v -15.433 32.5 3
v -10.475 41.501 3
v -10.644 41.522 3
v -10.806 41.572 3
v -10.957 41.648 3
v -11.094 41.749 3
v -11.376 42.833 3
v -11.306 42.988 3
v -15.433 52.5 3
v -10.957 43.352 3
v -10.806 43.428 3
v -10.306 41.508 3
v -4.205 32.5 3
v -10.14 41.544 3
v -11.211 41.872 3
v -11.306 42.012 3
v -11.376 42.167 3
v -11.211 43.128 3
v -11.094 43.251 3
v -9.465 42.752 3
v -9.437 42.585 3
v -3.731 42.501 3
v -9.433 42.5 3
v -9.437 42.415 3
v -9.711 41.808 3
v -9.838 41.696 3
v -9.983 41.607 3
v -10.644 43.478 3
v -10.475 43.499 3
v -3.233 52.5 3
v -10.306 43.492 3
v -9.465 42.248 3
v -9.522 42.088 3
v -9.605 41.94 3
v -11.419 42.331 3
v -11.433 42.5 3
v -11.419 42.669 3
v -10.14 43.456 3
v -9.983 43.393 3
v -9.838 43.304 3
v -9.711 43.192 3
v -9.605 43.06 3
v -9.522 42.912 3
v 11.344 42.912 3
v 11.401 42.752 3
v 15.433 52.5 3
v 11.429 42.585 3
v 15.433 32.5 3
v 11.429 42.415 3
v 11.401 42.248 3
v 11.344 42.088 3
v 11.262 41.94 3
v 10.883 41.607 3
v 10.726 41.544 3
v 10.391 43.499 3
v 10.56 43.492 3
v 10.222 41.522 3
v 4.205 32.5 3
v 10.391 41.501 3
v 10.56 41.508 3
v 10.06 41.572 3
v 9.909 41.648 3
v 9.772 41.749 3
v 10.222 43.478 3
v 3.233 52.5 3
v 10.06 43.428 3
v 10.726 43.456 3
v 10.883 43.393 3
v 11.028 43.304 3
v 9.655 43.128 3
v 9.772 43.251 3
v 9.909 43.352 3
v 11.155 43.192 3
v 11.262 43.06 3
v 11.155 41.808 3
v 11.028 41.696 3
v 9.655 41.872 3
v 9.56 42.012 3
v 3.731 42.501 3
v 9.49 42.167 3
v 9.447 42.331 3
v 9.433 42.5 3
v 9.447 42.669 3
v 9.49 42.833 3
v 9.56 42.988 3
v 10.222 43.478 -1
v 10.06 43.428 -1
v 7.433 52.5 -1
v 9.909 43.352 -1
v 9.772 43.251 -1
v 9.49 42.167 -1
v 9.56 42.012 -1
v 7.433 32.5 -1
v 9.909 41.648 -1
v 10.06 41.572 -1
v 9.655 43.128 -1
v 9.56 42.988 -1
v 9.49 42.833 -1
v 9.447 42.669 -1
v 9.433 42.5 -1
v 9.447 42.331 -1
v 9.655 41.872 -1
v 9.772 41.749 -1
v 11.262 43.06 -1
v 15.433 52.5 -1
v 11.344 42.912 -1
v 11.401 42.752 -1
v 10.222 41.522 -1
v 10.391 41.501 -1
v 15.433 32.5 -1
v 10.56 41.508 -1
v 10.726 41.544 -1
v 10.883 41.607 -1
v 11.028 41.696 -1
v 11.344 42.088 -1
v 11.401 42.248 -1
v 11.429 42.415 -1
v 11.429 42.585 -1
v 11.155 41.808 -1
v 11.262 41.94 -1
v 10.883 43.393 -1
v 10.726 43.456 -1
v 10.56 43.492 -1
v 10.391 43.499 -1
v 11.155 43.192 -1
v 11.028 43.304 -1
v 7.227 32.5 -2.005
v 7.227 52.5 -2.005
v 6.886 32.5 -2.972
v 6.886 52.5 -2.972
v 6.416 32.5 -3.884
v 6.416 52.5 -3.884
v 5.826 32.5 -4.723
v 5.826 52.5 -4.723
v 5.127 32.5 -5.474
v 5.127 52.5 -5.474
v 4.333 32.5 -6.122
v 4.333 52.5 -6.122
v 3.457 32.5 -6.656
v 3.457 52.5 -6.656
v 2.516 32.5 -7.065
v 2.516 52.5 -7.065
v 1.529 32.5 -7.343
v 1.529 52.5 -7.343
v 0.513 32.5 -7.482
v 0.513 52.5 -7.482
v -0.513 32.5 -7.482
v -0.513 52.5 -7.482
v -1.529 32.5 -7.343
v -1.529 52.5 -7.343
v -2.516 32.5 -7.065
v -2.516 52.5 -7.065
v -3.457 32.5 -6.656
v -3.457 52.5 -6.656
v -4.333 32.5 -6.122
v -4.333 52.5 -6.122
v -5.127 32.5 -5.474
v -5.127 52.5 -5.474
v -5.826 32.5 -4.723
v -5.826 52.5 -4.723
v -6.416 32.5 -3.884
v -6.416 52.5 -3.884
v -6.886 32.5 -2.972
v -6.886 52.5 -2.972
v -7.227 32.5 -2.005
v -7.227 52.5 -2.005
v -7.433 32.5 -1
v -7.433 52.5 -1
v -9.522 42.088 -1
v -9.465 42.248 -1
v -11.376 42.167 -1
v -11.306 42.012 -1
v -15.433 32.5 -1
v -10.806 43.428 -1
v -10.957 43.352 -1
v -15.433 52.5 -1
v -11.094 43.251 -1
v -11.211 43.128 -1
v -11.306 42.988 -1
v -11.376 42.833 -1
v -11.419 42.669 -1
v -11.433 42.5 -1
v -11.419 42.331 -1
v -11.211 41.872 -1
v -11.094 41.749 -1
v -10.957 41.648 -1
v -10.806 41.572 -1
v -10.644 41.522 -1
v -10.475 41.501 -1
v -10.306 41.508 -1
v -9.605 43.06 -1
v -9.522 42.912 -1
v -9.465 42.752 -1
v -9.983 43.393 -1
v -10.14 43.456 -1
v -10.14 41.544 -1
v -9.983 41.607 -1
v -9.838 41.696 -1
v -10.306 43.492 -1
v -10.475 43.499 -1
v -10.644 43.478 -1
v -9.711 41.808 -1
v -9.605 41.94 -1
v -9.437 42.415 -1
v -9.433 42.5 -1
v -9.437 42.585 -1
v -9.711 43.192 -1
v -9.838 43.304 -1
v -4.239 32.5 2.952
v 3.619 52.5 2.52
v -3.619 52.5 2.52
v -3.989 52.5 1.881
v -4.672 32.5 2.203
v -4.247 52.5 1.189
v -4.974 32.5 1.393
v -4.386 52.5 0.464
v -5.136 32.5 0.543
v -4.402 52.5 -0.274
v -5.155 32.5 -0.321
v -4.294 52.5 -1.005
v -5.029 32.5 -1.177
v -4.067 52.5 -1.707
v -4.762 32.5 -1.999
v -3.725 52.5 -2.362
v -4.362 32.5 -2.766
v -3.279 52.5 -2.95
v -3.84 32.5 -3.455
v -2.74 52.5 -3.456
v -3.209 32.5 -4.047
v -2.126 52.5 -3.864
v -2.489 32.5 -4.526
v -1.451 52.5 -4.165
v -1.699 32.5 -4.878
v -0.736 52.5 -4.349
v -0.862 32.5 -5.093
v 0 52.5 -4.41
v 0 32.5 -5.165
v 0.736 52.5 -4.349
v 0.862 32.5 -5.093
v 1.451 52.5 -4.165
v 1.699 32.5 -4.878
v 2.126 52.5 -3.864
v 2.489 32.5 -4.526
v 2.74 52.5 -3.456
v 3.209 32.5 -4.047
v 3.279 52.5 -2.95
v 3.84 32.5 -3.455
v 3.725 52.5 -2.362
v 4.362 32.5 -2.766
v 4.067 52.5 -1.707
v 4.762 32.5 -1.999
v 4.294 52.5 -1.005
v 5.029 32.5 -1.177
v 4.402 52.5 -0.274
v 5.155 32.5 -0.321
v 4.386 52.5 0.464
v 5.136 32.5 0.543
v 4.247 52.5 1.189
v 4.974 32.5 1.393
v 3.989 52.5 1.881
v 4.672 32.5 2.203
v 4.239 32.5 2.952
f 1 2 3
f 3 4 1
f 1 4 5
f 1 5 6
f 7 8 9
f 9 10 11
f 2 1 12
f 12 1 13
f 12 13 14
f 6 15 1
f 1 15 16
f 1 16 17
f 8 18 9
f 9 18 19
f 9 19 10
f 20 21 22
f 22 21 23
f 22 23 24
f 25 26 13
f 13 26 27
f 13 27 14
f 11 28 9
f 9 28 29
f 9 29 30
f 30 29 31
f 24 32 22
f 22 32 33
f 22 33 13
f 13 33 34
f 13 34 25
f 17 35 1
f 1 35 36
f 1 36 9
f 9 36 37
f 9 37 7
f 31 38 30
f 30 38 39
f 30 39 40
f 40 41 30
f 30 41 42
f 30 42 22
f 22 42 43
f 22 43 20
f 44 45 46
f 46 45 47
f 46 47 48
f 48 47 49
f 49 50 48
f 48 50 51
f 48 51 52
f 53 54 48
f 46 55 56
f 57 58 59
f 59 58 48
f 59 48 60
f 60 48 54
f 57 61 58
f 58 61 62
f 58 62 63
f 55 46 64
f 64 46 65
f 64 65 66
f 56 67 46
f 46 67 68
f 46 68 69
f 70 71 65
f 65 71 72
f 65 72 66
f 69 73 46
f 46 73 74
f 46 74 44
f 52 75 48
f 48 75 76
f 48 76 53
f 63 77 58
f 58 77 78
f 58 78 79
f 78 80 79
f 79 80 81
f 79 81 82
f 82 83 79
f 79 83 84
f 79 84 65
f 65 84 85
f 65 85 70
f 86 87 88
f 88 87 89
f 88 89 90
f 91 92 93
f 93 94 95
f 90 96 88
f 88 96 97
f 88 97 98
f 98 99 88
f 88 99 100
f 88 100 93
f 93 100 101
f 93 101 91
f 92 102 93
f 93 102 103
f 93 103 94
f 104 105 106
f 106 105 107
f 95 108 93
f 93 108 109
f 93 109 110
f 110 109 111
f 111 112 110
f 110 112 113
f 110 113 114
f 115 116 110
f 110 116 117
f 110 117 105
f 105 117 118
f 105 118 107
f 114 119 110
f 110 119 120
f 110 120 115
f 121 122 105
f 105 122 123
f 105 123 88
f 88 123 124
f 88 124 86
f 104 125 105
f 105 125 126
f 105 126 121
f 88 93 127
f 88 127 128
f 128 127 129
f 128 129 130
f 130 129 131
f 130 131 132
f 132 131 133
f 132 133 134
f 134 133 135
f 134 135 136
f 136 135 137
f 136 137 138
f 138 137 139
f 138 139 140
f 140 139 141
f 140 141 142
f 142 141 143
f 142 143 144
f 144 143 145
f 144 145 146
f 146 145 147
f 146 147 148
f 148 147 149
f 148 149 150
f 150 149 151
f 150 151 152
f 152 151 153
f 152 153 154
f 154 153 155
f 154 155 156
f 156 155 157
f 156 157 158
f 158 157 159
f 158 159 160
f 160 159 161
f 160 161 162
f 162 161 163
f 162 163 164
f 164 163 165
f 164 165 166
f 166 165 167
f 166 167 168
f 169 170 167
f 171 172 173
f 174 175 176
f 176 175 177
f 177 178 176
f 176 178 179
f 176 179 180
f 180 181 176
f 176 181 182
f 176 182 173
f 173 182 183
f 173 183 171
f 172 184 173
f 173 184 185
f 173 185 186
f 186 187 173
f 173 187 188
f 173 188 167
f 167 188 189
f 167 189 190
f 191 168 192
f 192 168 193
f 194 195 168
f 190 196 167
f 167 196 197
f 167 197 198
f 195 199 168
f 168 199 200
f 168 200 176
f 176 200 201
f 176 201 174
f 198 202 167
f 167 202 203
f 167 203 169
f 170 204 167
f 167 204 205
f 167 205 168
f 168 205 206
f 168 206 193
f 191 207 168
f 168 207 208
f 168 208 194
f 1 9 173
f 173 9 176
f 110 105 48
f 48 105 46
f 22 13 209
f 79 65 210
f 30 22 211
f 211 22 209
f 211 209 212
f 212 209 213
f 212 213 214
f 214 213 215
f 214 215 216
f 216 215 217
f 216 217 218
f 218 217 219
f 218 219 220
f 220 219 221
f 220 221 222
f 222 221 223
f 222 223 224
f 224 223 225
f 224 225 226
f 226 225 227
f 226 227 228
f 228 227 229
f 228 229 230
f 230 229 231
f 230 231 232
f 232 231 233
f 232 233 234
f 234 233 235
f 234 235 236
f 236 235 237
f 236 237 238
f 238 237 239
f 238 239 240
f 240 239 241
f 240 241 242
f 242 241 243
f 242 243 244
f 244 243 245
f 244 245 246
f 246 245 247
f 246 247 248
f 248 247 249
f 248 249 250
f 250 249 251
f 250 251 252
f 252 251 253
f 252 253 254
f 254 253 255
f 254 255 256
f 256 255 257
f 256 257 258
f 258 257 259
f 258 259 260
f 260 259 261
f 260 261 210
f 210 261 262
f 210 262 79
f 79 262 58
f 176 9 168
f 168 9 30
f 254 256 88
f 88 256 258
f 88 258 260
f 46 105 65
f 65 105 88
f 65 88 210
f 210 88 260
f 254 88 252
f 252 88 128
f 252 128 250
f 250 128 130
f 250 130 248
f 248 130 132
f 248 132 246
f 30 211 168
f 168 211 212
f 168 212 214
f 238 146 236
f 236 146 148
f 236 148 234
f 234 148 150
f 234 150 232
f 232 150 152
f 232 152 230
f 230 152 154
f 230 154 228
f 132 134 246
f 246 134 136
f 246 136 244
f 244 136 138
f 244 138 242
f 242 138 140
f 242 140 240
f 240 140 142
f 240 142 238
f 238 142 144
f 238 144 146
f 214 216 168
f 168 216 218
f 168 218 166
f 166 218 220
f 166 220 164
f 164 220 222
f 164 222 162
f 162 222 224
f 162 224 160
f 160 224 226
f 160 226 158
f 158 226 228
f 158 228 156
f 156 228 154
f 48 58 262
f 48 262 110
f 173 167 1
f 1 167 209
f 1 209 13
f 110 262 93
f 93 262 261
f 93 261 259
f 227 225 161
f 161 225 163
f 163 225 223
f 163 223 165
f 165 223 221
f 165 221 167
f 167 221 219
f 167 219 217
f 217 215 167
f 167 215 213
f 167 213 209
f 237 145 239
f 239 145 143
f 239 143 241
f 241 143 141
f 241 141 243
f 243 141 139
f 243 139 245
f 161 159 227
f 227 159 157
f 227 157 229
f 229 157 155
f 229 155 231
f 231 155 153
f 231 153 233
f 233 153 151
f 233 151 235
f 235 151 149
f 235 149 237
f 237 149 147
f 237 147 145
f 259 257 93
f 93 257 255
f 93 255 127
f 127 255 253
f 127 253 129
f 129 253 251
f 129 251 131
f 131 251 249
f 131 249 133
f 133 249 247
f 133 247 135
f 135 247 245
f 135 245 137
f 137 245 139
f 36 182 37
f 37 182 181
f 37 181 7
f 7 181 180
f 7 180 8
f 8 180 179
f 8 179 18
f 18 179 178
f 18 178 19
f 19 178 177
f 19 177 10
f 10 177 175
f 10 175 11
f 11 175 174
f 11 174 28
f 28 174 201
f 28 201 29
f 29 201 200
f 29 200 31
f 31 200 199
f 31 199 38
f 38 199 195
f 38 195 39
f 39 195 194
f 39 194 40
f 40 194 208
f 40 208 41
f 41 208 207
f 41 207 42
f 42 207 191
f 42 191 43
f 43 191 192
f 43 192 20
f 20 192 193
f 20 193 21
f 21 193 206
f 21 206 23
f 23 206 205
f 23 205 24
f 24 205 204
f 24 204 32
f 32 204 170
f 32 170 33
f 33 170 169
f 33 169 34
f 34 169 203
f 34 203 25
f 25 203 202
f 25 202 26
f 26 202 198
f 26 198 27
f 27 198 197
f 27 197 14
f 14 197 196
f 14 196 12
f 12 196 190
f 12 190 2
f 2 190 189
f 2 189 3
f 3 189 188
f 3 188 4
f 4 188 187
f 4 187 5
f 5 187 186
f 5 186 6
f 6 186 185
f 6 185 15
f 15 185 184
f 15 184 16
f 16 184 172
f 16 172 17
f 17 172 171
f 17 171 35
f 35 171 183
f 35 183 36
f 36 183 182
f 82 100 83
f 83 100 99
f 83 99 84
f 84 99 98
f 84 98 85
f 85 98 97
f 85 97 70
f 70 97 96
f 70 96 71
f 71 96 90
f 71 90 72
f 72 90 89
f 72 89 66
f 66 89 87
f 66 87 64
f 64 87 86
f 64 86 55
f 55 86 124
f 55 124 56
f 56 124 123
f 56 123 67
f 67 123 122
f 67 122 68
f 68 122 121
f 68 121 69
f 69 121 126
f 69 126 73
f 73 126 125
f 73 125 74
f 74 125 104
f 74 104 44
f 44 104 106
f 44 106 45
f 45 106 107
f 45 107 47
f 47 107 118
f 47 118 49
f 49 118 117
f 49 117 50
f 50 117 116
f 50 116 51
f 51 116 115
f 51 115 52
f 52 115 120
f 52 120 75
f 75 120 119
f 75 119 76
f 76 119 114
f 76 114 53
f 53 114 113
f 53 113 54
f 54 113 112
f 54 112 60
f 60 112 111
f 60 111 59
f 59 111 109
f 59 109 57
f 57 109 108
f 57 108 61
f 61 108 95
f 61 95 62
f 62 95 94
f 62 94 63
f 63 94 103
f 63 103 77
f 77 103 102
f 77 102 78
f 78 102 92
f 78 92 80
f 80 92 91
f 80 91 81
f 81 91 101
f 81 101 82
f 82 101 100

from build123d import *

# Parameters (mm, degrees)
RESSALTO_EXTRUS_O3_DEPTH = 60
ESBO_O5_R                = 6
CORTE_EXTRUS_O1_DEPTH    = 17
ESBO_O7_W                = 30.866068748
ESBO_O7_H                = 32.5
ESBO_O7_H_2              = 7.5
CORTE_EXTRUS_O2_DEPTH    = 15
ESBO_O8_R                = 1
CORTE_EXTRUS_O3_DEPTH    = 5


with BuildPart() as part:
    # Esboço4 → Ressalto-extrusão3 (new body)
    with BuildSketch(Plane(origin=(0, 0, 0), x_dir=(1, 0, 0), z_dir=(0, 1, 0))):
        with BuildLine():
            Line((15.433034374, -3), (-15.433034374, -3))
            Line((-15.433034374, -3), (-15.433034374, 1))
            Line((-15.433034374, 1), (-7.433034374, 1))
            ThreePointArc((-7.433034374, 1), (0, 7.5), (7.433034374, 1))
            Line((7.433034374, 1), (15.433034374, 1))
            Line((15.433034374, 1), (15.433034374, -3))
        make_face()
    extrude(amount=RESSALTO_EXTRUS_O3_DEPTH)

    # Esboço5 → Corte-extrusão1 (cut)
    with BuildSketch(Plane(origin=(0, 0, 0), x_dir=(1, 0, 0), z_dir=(0, 1, 0))):
        Circle(ESBO_O5_R)
    extrude(amount=CORTE_EXTRUS_O1_DEPTH, mode=Mode.SUBTRACT)

    # Esboço6 → Corte-Revolução1 (revolve, cut)
    with BuildSketch(Plane.XY):
        Polygon((0, 17), (-5.75, 17), (-3.75, 70), (0, 70), align=None)
    revolve(axis=Axis((0, 70, 0), (0, -1, 0)), mode=Mode.SUBTRACT)

    # Esboço7 → Corte-extrusão2 (cut)
    with BuildSketch(Plane.XY.offset(3)):
        with Locations((0, 16.25)):
            Rectangle(ESBO_O7_W, ESBO_O7_H)
        with Locations((0, 56.25)):
            Rectangle(ESBO_O7_W, ESBO_O7_H_2)
    extrude(amount=-CORTE_EXTRUS_O2_DEPTH, mode=Mode.SUBTRACT)

    # Esboço8 → Corte-extrusão3 (cut, through all)
    with BuildSketch(Plane(origin=(0, 0, -1), x_dir=(-1, 0, 0), z_dir=(0, 0, -1))):
        with Locations((-10.433034374, 42.5)):
            Circle(ESBO_O8_R)
        with Locations((10.433034374, 42.5)):
            Circle(ESBO_O8_R)
    extrude(amount=-CORTE_EXTRUS_O3_DEPTH, mode=Mode.SUBTRACT)


solid = part.part
